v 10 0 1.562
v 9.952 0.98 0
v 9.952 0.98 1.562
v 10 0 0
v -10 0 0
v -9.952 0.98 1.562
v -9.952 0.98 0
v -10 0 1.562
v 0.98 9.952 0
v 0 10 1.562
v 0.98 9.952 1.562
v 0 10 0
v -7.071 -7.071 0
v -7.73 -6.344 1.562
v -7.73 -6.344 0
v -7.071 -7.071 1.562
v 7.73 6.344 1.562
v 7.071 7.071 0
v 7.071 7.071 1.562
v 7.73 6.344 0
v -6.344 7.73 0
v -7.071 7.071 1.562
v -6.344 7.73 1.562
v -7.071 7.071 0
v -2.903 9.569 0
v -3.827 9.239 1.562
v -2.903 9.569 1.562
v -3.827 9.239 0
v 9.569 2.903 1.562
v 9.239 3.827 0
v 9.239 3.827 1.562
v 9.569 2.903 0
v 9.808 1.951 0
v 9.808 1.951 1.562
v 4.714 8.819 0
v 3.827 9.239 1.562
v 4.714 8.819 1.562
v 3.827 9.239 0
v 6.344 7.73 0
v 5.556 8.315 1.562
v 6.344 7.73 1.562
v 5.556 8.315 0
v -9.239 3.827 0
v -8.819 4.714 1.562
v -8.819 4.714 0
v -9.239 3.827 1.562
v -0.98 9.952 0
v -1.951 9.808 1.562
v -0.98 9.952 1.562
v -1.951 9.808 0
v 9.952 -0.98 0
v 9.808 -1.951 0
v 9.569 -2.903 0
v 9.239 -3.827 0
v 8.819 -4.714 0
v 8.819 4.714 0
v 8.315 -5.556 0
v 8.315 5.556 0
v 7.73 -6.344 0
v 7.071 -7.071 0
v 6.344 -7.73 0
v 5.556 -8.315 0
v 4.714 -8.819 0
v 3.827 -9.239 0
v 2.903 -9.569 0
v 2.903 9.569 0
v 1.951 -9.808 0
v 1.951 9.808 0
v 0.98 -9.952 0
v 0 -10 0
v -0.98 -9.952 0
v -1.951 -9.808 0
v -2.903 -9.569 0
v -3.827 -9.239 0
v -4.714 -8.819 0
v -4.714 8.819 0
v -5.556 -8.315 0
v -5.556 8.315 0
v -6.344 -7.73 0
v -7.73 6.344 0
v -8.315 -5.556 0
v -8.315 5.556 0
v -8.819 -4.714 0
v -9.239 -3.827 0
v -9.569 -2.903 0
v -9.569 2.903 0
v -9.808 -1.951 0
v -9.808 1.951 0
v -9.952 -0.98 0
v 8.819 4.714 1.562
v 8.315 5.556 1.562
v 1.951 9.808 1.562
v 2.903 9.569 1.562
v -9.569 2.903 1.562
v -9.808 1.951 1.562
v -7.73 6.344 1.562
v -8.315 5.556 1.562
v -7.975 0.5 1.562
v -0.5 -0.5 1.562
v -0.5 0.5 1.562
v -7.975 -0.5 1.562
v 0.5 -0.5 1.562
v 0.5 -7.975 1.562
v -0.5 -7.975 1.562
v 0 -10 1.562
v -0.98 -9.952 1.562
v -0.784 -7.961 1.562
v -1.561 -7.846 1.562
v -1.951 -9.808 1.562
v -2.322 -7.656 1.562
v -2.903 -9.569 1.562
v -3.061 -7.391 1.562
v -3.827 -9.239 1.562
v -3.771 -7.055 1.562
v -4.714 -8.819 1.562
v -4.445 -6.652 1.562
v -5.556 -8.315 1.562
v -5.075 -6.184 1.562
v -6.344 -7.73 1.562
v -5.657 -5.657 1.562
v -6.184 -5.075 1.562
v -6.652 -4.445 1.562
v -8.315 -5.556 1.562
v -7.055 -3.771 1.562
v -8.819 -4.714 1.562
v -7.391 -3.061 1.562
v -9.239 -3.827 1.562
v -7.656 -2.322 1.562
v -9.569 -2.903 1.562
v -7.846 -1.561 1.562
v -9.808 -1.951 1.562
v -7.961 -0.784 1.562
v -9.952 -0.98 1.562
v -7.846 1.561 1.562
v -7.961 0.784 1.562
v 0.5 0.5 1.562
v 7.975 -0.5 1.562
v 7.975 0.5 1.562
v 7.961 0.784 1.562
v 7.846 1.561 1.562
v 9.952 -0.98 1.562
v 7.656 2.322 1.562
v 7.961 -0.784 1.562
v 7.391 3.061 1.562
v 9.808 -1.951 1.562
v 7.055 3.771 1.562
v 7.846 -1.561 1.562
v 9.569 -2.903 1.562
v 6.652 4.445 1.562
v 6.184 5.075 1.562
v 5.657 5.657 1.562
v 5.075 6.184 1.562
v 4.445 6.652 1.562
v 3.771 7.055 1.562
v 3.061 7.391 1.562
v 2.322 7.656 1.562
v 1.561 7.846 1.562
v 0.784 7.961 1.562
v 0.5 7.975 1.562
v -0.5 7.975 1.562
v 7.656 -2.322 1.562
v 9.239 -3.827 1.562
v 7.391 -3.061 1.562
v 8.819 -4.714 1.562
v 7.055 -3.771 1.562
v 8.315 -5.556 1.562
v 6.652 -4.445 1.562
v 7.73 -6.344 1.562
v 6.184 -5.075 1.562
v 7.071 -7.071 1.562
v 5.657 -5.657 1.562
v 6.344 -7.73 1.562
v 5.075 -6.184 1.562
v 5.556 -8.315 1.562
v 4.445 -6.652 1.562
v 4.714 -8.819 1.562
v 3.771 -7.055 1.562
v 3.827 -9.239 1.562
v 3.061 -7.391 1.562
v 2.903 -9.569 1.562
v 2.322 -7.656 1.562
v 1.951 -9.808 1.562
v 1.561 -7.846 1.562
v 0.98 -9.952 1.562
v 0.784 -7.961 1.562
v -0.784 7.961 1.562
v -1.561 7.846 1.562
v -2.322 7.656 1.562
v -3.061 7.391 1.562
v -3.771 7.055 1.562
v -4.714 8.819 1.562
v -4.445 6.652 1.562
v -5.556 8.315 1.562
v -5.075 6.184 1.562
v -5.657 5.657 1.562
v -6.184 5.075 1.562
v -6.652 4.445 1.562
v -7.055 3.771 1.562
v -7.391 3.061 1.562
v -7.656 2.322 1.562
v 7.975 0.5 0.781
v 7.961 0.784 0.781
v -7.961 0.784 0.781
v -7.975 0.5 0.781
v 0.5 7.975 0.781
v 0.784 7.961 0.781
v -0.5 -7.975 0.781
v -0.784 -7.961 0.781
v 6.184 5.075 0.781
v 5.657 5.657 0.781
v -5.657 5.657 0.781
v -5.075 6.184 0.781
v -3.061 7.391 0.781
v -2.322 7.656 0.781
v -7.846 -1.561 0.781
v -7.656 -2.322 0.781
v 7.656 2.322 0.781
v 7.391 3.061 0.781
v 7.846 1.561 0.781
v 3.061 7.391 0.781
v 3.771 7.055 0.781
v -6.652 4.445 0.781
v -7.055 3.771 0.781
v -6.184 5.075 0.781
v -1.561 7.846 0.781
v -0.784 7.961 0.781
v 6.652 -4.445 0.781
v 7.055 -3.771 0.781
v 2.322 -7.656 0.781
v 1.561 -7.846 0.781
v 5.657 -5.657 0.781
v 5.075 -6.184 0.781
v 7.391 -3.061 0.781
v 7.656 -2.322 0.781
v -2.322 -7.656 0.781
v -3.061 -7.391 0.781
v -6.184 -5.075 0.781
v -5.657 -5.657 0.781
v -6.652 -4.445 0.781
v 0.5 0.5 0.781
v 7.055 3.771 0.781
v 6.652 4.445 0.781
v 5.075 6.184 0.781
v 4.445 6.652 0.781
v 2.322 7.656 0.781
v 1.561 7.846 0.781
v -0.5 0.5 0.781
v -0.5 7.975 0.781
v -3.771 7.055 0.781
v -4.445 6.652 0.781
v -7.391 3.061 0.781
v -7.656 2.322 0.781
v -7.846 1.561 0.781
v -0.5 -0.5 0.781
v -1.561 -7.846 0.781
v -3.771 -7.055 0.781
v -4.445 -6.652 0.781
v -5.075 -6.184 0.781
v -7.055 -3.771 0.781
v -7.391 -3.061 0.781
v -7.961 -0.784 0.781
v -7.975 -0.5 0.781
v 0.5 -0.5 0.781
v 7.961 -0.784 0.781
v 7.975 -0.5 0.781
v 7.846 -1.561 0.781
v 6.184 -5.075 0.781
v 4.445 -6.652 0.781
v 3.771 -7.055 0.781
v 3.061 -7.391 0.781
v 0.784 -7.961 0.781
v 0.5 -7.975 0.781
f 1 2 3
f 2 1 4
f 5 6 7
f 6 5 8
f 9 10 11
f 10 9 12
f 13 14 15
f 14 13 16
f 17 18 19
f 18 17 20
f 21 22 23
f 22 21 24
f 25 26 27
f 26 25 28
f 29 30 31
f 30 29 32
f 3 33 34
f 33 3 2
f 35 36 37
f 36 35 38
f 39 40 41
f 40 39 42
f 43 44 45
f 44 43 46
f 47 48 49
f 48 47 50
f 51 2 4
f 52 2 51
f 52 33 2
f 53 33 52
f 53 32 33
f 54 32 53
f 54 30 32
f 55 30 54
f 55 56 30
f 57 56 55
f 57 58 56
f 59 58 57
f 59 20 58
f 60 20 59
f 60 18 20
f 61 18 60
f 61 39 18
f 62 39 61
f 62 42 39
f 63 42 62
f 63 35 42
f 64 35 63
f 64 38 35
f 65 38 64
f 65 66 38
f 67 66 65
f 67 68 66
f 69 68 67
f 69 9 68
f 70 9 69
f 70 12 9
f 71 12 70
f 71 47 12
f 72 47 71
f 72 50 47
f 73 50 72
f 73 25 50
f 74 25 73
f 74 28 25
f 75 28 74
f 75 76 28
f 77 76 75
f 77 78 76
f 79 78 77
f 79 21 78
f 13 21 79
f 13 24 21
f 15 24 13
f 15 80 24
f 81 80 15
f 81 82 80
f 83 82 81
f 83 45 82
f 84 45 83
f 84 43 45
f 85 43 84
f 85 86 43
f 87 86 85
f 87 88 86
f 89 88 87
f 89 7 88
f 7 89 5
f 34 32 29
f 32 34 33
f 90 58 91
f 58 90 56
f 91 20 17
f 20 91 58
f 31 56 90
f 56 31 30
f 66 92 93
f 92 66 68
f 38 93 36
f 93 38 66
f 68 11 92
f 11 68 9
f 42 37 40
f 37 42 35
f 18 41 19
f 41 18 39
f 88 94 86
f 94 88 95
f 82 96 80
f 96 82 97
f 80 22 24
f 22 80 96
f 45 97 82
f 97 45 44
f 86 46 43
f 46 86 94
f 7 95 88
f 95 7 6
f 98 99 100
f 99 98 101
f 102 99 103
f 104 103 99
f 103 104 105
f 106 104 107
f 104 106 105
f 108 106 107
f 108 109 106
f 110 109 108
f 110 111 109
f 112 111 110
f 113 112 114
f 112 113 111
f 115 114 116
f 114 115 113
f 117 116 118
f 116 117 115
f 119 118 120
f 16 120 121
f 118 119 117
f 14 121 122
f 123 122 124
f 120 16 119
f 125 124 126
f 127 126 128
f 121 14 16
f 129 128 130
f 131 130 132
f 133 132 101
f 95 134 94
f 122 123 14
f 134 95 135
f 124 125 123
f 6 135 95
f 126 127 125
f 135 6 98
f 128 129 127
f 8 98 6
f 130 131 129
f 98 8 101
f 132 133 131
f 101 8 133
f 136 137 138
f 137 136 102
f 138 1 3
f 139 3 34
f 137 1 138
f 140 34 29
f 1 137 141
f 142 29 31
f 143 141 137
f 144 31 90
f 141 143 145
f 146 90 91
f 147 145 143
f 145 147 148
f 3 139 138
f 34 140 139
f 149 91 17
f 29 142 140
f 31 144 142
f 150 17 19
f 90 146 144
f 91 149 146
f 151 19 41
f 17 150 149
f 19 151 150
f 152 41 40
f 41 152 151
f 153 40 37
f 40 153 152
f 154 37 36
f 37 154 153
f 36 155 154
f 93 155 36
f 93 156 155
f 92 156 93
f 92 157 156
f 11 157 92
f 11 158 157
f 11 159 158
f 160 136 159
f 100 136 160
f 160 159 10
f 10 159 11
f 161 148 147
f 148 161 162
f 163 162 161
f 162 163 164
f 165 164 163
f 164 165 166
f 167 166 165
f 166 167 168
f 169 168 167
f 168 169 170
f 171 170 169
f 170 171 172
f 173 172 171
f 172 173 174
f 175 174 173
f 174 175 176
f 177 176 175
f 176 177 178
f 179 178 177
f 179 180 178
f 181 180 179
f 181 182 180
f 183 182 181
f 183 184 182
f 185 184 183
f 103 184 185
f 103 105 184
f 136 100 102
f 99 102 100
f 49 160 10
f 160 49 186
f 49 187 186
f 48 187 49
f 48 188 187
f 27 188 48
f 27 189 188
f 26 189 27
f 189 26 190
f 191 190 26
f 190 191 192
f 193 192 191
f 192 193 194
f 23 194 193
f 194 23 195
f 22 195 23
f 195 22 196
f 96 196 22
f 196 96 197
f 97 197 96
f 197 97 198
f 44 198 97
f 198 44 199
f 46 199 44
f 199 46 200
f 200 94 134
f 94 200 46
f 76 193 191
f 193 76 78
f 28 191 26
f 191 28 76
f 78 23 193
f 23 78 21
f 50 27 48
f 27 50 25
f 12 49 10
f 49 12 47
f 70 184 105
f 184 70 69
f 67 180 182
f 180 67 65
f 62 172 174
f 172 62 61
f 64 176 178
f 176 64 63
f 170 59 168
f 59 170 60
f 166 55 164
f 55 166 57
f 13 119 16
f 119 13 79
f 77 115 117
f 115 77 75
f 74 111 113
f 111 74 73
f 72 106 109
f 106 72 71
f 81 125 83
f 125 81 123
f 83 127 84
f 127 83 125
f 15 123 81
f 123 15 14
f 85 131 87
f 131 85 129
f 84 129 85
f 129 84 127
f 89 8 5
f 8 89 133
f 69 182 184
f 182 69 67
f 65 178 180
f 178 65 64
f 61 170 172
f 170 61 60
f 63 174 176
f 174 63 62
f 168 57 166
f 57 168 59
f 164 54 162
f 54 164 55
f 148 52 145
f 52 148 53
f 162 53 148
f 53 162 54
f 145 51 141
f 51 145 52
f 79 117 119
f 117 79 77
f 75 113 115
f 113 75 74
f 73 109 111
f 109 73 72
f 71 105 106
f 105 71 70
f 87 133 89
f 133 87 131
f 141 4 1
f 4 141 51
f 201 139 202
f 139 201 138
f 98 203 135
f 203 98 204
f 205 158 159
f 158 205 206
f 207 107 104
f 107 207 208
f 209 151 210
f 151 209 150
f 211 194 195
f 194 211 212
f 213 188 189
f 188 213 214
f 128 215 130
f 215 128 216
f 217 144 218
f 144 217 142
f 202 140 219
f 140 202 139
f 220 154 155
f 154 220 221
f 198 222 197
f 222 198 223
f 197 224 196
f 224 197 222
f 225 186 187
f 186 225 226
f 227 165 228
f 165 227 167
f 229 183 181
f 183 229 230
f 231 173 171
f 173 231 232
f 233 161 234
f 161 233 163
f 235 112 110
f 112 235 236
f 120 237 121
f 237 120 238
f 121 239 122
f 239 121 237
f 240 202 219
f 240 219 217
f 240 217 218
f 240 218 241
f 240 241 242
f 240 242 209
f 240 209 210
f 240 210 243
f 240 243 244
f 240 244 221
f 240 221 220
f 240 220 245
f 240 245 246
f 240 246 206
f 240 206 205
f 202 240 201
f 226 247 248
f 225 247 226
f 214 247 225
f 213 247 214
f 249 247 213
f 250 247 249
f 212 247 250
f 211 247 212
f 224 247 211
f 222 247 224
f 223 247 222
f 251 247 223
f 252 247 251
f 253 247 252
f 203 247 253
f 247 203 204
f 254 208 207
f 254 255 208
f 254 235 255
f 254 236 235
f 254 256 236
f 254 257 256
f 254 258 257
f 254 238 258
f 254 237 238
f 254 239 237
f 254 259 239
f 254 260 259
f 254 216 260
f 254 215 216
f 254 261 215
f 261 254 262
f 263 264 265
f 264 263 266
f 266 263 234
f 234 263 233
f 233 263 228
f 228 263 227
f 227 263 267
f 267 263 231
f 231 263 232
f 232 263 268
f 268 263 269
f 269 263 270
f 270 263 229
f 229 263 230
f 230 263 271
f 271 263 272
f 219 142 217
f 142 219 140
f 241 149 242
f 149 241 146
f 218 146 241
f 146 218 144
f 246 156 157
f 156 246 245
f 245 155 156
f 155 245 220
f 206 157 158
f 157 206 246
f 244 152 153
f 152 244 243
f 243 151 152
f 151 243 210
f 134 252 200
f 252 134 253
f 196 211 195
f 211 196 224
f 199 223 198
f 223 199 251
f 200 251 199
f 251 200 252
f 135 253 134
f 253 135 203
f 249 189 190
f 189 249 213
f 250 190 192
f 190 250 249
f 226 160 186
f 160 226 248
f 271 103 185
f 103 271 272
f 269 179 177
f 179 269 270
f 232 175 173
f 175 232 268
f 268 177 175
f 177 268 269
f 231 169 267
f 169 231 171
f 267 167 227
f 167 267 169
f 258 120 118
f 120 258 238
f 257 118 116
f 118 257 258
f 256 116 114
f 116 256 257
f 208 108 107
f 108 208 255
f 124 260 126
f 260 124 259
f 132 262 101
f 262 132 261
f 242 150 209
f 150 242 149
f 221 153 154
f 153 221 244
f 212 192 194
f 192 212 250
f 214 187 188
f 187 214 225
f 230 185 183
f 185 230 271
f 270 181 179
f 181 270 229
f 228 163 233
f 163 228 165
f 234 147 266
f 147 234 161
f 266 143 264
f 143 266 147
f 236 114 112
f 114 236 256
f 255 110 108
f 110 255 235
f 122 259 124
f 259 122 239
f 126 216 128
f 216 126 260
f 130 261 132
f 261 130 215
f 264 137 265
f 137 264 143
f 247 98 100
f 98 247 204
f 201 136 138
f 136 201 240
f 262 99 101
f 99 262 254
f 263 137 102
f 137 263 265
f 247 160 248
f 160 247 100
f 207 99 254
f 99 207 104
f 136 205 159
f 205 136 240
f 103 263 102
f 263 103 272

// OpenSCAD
$fn = 64;

size_index = 100;
button_radius = size_index/10;
rim_size = size_index/100;
internal_radius = button_radius - rim_size*2;
//button_height = 1.8;
button_height = size_index/64;
button_drop = button_height/2;
font_size = size_index/16;

text = "Align";
 font = "Liberation Sans";
 
 valign = [
   [  0, "top"],
   [ 40, "center"],
   [ 75, "baseline"],
   [110, "bottom"]
 ];
 
union() {
    difference() {
        cylinder(r = button_radius, h = button_height);
        translate([0, 0, button_drop]) {
            cylinder(r = internal_radius, h = button_drop);
        }
    }
    translate([-internal_radius,-(rim_size/2),button_drop]) {
        cube(size=[internal_radius*2, rim_size, button_drop]);
    }
    translate([-(rim_size/2),-internal_radius,button_drop]) {
        cube(size=[rim_size, internal_radius*2, button_drop]);
    }
}


/*
content = "RK";
font = "Liberation Sans";

translate ([-(font_size),-(font_size/2),0]) {
   linear_extrude(height = button_height) {
       text("RK", font = font, size = font_size);
     }
 }
*/
 /*
projection() {
    translate([0,0,button_drop*sqrt(2)]) {
        text("asdf", halign=50);
    }
}
*/
